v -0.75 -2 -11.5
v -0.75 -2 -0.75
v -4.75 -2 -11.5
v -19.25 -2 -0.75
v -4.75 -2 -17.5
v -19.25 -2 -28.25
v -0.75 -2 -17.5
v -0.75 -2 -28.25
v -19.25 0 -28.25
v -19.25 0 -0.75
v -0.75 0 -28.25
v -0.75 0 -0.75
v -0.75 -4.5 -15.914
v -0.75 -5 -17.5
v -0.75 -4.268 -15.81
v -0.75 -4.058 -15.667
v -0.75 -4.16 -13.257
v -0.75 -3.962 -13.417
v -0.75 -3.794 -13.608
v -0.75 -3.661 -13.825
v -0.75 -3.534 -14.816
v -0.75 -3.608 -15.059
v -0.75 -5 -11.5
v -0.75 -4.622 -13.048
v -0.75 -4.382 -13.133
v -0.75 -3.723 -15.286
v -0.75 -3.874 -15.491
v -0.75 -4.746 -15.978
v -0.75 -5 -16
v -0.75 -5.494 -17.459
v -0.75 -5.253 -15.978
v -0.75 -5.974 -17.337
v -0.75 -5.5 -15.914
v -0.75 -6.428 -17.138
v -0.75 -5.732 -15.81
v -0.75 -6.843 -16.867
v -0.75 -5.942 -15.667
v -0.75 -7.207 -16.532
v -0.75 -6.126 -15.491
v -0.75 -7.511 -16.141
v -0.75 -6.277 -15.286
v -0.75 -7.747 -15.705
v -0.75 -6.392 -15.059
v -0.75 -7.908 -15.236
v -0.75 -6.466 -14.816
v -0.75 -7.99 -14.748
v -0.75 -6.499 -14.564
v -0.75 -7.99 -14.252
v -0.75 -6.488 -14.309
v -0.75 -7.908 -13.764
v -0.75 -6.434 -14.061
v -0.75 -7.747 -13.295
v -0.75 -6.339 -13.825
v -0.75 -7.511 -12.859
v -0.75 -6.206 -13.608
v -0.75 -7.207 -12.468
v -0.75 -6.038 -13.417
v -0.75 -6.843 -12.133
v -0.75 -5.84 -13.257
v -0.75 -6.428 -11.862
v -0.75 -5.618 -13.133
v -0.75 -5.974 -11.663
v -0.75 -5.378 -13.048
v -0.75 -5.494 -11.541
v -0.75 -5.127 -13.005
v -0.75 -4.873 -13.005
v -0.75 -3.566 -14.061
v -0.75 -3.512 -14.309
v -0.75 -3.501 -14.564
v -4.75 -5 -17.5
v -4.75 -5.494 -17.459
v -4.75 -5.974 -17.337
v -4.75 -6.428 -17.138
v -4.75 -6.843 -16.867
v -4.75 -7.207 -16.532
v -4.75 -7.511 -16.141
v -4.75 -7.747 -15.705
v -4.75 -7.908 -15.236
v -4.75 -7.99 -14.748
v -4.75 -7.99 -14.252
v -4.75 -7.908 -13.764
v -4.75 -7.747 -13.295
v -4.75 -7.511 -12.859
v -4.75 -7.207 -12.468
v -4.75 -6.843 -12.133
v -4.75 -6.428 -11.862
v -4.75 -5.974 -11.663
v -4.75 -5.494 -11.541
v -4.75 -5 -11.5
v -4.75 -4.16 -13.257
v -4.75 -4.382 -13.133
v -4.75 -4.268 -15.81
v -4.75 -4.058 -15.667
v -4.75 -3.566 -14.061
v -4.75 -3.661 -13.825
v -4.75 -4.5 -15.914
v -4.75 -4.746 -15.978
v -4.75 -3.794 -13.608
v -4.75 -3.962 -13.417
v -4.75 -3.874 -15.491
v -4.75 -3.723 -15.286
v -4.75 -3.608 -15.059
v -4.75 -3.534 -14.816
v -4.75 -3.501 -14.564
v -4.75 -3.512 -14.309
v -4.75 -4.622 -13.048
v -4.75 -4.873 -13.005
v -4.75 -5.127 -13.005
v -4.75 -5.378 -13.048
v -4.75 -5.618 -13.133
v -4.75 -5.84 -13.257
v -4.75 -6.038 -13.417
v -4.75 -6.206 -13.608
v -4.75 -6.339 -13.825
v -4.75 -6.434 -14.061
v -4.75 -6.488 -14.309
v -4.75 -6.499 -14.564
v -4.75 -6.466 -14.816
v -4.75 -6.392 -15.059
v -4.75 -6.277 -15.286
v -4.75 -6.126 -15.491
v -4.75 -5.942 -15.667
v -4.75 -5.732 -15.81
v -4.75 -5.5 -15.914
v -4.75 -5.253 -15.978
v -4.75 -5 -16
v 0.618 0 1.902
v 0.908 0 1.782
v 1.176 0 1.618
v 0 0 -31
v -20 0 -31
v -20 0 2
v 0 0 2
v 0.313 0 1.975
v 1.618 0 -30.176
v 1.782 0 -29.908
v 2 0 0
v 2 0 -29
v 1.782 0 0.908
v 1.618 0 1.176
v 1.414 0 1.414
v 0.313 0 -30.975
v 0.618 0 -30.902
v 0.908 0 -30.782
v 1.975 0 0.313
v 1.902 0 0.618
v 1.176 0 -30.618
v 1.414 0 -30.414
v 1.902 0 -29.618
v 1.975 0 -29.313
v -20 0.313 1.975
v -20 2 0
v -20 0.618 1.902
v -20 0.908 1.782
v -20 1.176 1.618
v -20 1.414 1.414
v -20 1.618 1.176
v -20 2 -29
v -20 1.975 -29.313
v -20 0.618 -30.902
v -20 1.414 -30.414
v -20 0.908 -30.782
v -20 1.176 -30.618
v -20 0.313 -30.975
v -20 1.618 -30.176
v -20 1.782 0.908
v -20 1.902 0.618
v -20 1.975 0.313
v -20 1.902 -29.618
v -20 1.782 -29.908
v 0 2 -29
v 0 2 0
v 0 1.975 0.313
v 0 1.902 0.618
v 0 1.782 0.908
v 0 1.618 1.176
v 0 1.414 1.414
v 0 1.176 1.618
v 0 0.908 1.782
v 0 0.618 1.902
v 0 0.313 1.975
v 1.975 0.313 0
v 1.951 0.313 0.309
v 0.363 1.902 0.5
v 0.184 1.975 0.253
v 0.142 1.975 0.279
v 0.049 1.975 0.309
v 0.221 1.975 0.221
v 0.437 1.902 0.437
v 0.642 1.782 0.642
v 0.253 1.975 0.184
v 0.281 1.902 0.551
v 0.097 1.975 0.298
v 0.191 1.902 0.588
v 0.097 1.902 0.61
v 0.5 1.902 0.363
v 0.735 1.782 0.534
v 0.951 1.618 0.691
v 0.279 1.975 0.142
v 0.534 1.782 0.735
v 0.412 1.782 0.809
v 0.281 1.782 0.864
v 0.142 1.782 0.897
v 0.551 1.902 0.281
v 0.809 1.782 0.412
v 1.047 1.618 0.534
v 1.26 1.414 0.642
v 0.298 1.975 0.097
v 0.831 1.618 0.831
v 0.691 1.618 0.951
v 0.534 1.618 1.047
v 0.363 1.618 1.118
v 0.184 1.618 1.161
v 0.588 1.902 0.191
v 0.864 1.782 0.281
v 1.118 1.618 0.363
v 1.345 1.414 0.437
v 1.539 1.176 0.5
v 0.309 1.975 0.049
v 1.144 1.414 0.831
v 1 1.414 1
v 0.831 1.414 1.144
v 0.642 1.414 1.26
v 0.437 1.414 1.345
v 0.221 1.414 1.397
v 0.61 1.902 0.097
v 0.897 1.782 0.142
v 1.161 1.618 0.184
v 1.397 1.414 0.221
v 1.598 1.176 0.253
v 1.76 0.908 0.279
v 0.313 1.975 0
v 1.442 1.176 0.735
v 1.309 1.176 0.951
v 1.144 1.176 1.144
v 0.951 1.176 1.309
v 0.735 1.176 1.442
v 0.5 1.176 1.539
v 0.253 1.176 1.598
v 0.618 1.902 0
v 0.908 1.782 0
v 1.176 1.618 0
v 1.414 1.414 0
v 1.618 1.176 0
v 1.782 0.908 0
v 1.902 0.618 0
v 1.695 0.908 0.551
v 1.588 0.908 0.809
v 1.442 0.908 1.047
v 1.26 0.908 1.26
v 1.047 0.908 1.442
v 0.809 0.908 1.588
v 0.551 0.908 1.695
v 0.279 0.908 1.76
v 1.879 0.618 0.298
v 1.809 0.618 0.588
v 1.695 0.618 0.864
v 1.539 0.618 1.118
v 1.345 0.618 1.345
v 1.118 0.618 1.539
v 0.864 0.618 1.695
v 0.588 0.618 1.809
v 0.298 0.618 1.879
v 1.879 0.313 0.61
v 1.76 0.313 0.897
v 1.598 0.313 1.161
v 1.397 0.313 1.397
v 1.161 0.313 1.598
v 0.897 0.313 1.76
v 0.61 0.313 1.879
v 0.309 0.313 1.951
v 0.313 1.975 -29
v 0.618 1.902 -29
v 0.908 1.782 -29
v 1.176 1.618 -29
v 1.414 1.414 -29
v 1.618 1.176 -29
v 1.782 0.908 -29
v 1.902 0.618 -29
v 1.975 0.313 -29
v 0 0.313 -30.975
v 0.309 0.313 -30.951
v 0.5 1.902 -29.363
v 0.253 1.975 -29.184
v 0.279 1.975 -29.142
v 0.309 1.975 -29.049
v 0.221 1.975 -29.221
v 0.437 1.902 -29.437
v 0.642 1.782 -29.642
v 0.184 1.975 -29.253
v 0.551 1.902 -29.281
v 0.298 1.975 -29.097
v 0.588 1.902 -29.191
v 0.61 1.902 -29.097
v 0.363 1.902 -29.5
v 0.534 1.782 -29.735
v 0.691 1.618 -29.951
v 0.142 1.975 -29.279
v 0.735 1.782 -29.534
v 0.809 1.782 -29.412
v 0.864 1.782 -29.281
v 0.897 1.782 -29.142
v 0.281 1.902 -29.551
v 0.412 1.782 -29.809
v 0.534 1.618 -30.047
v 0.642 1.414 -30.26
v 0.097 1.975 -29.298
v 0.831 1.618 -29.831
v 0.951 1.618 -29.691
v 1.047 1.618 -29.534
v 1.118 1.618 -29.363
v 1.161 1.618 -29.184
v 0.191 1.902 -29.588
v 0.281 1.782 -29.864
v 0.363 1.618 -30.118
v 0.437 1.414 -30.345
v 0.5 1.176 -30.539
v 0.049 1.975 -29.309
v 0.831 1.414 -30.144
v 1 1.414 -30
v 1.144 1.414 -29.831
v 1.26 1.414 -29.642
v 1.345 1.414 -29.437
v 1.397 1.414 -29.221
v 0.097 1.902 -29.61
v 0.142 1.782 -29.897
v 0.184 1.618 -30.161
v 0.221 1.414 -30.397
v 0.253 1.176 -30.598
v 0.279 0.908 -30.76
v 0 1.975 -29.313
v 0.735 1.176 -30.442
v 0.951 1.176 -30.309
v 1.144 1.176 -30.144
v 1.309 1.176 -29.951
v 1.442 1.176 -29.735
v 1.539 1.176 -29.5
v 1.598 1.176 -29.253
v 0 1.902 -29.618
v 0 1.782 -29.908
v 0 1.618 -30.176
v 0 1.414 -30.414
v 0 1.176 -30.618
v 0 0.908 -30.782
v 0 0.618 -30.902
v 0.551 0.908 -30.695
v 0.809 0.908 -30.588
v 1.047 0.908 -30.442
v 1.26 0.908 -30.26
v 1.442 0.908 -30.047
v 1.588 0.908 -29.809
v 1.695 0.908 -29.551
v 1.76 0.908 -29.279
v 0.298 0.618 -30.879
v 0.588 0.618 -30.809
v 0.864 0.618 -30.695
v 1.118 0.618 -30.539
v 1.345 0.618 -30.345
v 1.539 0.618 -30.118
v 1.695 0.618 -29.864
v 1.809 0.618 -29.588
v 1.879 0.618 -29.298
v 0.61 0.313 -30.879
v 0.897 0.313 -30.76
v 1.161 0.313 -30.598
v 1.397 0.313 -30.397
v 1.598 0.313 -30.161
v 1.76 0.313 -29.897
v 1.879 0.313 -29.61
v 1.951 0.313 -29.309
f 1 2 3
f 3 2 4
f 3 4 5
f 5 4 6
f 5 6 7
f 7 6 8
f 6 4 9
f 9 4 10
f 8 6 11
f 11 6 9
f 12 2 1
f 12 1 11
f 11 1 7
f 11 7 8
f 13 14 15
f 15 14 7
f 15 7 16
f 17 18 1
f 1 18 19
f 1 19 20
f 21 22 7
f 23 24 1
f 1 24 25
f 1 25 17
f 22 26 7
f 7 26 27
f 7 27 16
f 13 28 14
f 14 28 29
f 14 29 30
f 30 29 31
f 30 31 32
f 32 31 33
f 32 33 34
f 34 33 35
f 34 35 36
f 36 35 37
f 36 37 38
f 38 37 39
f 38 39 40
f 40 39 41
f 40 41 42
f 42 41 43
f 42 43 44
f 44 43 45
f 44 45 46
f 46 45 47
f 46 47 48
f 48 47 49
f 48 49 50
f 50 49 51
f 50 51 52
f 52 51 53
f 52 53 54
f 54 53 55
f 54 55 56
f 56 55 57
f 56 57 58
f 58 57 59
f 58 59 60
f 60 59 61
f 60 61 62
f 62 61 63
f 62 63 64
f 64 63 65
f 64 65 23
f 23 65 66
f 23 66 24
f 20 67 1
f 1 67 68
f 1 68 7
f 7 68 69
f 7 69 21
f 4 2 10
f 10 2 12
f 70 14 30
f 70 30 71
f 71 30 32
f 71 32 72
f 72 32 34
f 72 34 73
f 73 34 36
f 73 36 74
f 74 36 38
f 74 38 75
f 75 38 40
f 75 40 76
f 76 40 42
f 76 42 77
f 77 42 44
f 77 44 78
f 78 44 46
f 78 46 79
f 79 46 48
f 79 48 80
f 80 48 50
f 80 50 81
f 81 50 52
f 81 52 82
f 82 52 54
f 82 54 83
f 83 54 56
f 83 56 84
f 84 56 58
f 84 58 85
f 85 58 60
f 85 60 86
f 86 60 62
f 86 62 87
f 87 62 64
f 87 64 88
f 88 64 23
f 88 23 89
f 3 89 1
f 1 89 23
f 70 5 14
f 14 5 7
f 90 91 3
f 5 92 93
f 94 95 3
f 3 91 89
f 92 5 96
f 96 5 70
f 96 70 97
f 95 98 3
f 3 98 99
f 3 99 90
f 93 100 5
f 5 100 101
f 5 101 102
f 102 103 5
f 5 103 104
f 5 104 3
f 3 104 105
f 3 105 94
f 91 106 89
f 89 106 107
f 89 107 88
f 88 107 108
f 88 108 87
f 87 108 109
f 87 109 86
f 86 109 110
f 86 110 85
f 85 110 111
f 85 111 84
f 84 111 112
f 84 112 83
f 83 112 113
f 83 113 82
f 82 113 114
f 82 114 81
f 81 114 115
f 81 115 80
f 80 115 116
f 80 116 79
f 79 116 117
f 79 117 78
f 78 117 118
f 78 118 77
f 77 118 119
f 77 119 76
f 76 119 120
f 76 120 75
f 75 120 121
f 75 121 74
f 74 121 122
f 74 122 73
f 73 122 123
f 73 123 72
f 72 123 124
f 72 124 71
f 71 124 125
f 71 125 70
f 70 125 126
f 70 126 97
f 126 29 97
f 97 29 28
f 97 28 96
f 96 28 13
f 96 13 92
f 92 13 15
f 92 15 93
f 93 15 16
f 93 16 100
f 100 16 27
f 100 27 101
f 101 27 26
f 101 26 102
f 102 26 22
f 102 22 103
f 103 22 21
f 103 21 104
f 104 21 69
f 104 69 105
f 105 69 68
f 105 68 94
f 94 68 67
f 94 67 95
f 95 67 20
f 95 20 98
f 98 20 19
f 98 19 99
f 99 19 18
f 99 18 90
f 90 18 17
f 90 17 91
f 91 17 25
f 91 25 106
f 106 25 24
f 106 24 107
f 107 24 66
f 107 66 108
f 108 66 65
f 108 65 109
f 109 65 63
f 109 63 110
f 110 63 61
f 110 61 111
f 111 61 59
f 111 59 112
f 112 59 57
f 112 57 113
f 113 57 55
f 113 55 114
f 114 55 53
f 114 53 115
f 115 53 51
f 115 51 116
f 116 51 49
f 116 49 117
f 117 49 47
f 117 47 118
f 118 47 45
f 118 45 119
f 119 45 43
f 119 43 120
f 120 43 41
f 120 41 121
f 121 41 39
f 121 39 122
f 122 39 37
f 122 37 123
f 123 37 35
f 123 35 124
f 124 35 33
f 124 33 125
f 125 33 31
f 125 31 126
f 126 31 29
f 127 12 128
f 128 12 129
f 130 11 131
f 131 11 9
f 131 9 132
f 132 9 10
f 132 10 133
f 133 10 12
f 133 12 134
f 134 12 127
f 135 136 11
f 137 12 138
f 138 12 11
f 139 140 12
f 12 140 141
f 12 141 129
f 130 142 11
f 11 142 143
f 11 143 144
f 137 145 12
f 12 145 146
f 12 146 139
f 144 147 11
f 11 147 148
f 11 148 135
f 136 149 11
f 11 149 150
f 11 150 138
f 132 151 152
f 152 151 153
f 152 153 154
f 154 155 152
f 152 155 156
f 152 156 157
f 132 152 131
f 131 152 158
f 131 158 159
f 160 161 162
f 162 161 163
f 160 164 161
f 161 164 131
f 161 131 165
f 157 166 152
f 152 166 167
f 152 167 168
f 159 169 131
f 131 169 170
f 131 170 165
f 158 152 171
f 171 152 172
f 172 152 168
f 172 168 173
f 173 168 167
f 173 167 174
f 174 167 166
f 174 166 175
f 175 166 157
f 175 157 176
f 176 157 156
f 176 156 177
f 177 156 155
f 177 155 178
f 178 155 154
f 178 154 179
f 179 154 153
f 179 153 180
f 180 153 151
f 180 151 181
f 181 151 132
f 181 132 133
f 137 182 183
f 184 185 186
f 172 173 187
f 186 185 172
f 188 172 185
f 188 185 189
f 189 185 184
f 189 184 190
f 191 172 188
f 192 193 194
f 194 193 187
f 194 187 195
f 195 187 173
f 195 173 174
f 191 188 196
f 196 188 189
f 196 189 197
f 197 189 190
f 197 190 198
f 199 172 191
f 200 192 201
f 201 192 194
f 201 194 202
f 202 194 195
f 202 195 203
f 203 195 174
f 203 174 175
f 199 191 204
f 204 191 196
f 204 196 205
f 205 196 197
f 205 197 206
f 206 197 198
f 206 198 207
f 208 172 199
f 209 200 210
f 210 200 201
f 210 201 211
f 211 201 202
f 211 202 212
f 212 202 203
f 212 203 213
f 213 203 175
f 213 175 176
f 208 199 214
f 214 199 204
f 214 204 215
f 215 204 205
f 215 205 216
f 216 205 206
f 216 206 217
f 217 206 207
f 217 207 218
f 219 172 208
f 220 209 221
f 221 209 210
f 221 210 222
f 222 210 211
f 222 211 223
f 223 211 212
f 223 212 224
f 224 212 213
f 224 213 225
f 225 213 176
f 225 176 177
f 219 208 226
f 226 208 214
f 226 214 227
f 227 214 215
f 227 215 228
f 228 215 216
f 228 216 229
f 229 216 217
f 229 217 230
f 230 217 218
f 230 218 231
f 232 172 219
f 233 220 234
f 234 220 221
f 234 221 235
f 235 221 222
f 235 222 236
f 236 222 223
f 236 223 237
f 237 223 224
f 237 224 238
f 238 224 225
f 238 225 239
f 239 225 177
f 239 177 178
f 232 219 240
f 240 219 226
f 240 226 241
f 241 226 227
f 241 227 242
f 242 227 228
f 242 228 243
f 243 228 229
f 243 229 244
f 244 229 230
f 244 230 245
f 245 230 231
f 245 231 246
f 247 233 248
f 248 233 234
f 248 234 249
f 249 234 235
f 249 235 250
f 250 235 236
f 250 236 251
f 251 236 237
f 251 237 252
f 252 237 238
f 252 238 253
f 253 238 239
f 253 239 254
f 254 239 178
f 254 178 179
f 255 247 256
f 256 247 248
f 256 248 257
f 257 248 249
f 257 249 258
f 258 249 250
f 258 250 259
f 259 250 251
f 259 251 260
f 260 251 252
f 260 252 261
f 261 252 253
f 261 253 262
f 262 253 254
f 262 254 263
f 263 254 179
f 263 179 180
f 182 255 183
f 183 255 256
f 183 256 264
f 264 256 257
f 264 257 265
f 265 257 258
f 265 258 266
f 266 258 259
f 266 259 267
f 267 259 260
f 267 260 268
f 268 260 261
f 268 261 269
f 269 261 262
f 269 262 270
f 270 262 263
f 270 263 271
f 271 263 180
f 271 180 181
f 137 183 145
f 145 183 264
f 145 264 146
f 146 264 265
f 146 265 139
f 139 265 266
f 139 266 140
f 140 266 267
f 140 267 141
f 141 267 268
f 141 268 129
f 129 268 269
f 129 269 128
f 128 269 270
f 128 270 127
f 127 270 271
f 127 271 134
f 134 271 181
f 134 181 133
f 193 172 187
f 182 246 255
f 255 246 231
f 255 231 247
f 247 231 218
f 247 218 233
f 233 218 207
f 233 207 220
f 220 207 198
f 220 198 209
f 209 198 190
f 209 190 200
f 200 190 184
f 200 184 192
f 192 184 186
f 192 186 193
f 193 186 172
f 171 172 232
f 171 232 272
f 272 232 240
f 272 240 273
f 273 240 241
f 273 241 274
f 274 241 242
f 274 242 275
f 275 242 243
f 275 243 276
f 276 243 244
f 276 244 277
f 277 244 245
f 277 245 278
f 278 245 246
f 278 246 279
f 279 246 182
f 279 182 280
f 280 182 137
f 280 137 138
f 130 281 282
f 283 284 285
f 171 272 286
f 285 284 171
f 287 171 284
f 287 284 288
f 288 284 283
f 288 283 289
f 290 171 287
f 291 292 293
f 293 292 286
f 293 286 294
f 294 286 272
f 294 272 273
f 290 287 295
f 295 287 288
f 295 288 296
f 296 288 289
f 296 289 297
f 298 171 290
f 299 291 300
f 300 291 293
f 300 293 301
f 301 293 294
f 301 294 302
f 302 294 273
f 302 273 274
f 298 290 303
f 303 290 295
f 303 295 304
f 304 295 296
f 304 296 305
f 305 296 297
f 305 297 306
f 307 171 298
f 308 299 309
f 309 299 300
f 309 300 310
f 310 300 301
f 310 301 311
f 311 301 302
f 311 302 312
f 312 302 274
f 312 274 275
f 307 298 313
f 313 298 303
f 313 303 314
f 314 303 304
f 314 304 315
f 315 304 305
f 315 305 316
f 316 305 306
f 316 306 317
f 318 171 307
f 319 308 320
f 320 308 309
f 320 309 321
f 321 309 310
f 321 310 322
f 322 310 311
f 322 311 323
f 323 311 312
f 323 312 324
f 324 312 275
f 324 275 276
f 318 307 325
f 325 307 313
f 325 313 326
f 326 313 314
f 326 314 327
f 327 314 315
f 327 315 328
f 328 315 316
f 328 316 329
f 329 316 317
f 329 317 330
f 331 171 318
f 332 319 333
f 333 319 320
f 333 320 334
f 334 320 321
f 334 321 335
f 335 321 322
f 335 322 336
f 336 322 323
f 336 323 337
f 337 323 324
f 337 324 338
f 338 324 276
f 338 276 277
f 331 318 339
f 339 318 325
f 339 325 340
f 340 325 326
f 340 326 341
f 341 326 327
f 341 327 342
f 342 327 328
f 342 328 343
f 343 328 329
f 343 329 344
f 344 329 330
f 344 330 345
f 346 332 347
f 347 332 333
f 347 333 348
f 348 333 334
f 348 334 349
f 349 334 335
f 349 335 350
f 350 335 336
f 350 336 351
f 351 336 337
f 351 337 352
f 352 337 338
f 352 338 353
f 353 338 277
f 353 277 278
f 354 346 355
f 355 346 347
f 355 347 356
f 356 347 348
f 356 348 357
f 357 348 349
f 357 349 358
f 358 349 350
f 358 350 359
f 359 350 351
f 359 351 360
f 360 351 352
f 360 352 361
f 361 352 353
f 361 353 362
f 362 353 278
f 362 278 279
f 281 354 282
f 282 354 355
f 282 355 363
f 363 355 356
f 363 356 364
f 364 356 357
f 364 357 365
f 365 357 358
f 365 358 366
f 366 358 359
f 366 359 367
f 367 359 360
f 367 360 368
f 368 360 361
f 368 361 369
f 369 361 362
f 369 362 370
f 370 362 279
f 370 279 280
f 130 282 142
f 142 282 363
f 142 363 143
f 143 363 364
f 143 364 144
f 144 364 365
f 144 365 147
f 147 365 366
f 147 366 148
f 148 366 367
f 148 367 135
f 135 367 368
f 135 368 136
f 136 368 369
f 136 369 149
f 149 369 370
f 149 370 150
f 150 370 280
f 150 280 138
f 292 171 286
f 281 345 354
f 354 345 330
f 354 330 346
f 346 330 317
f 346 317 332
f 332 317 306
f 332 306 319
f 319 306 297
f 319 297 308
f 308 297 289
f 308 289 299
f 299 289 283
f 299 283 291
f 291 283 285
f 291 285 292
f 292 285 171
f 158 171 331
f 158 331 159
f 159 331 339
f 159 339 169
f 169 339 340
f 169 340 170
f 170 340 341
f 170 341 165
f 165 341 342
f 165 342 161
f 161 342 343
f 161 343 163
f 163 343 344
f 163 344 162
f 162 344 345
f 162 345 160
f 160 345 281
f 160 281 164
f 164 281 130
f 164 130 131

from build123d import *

# Parameters (mm, degrees)
SKETCH1_W           = 18.5
SKETCH1_H           = 27.5
BOSS_EXTRUDE1_DEPTH = 2
SKETCH3_R           = 1.5
BOSS_EXTRUDE2_DEPTH = 4
BOSS_EXTRUDE3_DEPTH = 2
FILLET1_R           = 2


with BuildPart() as part:
    # Sketch1 → Boss-Extrude1 (new body)
    with BuildSketch(Plane(origin=(0, 0, 0), x_dir=(1, 0, 0), z_dir=(0, 1, 0))):
        with Locations((-10, 14.5)):
            Rectangle(SKETCH1_W, SKETCH1_H)
    extrude(amount=-BOSS_EXTRUDE1_DEPTH)

    # Sketch3 → Boss-Extrude2 (add)
    with BuildSketch(Plane(origin=(-0.75, 0, 0), x_dir=(0, 0, -1), z_dir=(1, 0, 0))):
        with BuildLine():
            Line((11.5, -5), (11.5, -2))
            Line((11.5, -2), (17.5, -2))
            Line((17.5, -2), (17.5, -5))
            ThreePointArc((17.5, -5), (14.5, -8), (11.5, -5))
        make_face()
        with Locations((14.5, -5)):
            Circle(SKETCH3_R, mode=Mode.SUBTRACT)
    extrude(amount=-BOSS_EXTRUDE2_DEPTH)

    # Sketch4 → Boss-Extrude3 (add)
    with BuildSketch(Plane(origin=(0, 0, 0), x_dir=(1, 0, 0), z_dir=(0, 1, 0))):
        with BuildLine():
            Line((0, -2), (-20, -2))
            Line((-20, -2), (-20, 31))
            Line((-20, 31), (0, 31))
            ThreePointArc((0, 31), (1.414213562, 30.414213562), (2, 29))
            Line((2, 29), (2, 0))
            ThreePointArc((2, 0), (1.414213562, -1.414213562), (0, -2))
        make_face()
    extrude(amount=BOSS_EXTRUDE3_DEPTH)

    # Fillet1
    fillet1_edges = [part.edges().sort_by_distance(p)[0] for p in [
        (-10, 2, -31),
        (1.414213562, 2, -30.414213562),
        (2, 2, -14.5),
        (1.414213562, 2, 1.414213562),
        (-10, 2, 2),
    ]]
    fillet(fillet1_edges, radius=FILLET1_R - 0.0001)  # a hair under: the kernel refuses the full size


solid = part.part
